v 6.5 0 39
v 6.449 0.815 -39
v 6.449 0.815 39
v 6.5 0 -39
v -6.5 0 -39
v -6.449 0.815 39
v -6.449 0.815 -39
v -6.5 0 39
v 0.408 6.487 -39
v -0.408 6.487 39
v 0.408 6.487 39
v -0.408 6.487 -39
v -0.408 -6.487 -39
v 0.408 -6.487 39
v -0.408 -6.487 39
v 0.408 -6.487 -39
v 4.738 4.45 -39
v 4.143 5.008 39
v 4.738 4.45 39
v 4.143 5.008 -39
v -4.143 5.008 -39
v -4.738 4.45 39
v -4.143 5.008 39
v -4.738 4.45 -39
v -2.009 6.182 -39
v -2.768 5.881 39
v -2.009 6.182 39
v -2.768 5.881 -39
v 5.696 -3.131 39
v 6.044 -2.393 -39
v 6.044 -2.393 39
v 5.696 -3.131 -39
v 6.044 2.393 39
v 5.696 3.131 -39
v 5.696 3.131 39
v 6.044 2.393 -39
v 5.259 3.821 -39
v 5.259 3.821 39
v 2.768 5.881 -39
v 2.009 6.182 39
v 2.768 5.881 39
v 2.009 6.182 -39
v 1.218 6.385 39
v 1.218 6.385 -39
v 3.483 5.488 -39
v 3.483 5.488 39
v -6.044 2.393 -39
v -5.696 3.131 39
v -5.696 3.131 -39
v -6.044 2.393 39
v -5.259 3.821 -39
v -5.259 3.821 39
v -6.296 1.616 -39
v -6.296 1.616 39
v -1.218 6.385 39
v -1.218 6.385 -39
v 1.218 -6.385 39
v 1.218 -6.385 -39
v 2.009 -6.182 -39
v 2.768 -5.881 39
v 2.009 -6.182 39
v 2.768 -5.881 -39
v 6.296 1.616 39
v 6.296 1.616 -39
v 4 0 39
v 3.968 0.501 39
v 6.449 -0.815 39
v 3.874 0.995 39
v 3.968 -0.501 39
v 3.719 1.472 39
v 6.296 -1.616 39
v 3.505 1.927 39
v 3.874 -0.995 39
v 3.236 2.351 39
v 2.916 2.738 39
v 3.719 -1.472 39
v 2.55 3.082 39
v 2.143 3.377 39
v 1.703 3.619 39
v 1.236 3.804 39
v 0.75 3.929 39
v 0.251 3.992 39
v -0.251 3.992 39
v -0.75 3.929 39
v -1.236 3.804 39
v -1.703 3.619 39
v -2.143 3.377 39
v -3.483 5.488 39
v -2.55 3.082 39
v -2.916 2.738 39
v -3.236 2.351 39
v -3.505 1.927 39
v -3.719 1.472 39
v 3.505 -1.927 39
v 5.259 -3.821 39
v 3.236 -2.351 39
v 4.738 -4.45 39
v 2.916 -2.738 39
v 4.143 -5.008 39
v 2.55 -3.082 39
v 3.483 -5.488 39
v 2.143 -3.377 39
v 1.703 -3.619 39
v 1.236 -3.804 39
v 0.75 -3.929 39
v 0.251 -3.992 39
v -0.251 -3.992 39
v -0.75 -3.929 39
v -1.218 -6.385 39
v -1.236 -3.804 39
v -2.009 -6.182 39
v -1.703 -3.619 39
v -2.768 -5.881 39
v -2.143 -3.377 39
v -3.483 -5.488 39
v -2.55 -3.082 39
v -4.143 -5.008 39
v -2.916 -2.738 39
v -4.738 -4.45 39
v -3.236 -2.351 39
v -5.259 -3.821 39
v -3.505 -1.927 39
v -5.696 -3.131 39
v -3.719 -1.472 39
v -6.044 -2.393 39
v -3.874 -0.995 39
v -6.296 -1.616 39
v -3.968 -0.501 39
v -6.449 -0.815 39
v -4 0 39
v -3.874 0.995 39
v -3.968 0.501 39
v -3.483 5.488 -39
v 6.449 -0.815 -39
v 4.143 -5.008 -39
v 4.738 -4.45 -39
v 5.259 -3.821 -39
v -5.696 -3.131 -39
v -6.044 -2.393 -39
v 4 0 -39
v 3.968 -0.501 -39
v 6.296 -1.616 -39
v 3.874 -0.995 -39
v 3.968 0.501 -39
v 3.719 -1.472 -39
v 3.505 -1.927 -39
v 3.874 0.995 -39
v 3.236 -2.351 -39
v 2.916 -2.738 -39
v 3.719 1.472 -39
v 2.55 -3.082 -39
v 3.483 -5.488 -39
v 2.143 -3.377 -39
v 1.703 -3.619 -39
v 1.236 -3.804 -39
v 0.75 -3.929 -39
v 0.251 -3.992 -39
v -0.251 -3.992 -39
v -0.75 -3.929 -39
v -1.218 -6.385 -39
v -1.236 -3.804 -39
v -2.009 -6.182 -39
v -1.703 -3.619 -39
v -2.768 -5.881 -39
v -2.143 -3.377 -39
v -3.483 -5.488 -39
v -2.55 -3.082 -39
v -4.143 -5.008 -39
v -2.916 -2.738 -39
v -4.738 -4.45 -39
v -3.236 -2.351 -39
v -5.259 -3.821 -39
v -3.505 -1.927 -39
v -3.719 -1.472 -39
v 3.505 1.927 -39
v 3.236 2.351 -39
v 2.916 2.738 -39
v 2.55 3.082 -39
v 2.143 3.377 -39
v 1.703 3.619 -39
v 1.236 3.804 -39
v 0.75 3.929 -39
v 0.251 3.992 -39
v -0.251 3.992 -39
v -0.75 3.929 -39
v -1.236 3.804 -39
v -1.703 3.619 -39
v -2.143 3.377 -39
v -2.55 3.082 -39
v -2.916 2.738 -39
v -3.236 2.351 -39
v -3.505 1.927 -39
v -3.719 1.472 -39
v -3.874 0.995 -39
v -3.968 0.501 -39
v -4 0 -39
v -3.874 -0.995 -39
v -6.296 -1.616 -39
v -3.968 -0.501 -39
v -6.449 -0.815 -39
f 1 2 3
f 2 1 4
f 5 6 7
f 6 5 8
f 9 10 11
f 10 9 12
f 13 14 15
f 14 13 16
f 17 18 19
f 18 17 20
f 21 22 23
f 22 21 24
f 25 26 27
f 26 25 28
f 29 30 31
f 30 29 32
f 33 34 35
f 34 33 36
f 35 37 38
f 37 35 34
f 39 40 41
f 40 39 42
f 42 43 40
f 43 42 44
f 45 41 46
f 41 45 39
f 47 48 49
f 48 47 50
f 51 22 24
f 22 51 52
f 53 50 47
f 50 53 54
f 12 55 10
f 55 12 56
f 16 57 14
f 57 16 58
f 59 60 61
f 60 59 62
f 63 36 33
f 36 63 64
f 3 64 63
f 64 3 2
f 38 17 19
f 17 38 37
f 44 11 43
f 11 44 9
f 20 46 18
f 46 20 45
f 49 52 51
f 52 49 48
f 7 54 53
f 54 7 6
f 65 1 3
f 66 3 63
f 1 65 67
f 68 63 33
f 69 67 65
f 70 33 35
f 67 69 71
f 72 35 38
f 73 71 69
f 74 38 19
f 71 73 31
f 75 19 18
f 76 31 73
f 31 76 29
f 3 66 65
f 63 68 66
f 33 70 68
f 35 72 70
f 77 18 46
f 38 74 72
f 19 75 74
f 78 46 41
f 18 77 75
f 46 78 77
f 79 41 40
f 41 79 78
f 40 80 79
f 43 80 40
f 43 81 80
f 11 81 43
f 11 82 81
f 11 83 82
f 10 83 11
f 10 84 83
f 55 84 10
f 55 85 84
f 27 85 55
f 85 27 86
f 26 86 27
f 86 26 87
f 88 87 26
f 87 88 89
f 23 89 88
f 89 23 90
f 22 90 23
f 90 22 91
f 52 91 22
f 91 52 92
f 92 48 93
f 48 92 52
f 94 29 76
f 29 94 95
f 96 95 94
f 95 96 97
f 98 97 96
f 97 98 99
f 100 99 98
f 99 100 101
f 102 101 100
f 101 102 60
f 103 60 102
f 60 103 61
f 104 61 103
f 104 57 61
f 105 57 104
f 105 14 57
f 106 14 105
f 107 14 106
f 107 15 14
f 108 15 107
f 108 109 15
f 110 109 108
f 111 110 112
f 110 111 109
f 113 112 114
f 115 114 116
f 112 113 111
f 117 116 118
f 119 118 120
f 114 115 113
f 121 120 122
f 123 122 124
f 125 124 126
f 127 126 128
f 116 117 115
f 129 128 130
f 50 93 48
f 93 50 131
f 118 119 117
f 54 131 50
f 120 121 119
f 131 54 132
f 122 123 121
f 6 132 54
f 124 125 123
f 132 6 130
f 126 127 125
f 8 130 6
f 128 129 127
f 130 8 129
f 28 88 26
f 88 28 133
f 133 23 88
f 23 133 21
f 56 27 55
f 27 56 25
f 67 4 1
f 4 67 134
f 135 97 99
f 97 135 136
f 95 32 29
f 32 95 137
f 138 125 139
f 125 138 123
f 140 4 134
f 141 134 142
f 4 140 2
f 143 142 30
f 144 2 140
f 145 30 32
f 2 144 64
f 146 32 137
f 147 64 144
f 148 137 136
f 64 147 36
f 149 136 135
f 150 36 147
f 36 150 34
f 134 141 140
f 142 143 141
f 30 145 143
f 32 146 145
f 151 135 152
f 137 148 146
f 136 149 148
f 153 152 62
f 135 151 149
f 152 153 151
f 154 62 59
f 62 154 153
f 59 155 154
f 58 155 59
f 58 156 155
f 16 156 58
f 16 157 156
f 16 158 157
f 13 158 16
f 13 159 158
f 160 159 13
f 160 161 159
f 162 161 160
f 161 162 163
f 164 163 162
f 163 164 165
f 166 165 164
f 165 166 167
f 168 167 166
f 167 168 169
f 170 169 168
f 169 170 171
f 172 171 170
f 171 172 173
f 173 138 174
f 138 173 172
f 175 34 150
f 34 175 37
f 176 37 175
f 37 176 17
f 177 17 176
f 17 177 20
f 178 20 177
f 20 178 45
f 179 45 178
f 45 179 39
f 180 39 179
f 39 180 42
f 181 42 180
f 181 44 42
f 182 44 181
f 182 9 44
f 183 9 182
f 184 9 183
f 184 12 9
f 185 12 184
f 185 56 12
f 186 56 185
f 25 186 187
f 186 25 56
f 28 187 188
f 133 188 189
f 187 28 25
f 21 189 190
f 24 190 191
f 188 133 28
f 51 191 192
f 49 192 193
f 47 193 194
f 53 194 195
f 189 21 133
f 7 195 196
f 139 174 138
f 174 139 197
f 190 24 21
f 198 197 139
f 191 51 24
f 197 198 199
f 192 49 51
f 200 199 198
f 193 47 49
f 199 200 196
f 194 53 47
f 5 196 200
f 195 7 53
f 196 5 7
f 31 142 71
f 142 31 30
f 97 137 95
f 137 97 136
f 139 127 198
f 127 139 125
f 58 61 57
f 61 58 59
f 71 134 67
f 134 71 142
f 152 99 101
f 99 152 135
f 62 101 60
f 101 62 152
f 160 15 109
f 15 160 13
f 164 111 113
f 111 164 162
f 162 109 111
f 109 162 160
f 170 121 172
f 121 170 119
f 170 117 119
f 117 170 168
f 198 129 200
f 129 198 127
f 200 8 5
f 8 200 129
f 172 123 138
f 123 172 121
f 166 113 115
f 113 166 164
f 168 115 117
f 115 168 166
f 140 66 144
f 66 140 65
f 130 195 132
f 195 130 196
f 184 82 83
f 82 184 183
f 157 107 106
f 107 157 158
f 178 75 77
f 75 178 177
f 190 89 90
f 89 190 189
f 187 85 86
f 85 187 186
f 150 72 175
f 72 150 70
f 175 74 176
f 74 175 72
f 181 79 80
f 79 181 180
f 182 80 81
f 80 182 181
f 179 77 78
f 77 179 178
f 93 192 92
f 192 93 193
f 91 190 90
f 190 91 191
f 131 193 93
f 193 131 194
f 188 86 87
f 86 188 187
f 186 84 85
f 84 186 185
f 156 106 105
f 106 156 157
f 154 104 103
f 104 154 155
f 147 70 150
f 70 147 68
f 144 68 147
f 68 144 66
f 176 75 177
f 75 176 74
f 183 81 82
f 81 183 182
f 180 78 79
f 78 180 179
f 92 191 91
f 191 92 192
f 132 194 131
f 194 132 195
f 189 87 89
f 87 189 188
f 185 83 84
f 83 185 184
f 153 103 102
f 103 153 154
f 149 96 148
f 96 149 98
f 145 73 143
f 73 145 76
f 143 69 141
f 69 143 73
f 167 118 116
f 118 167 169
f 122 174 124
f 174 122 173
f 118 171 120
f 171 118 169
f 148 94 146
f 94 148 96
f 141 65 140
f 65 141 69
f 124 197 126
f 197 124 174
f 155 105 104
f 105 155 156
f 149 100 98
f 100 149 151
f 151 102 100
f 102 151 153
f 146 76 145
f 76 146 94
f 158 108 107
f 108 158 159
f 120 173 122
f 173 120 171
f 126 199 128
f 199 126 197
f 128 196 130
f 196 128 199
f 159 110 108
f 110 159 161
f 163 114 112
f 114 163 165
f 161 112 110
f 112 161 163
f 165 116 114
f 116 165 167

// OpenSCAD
$fn = 50;


difference() {
	union() {
		translate(v = [0, 0, -39.0000000000]) {
			cylinder(h = 78, r = 6.5000000000);
		}
	}
	union() {
		translate(v = [0, 0, -100.0000000000]) {
			cylinder(h = 200, r = 4);
		}
	}
}
